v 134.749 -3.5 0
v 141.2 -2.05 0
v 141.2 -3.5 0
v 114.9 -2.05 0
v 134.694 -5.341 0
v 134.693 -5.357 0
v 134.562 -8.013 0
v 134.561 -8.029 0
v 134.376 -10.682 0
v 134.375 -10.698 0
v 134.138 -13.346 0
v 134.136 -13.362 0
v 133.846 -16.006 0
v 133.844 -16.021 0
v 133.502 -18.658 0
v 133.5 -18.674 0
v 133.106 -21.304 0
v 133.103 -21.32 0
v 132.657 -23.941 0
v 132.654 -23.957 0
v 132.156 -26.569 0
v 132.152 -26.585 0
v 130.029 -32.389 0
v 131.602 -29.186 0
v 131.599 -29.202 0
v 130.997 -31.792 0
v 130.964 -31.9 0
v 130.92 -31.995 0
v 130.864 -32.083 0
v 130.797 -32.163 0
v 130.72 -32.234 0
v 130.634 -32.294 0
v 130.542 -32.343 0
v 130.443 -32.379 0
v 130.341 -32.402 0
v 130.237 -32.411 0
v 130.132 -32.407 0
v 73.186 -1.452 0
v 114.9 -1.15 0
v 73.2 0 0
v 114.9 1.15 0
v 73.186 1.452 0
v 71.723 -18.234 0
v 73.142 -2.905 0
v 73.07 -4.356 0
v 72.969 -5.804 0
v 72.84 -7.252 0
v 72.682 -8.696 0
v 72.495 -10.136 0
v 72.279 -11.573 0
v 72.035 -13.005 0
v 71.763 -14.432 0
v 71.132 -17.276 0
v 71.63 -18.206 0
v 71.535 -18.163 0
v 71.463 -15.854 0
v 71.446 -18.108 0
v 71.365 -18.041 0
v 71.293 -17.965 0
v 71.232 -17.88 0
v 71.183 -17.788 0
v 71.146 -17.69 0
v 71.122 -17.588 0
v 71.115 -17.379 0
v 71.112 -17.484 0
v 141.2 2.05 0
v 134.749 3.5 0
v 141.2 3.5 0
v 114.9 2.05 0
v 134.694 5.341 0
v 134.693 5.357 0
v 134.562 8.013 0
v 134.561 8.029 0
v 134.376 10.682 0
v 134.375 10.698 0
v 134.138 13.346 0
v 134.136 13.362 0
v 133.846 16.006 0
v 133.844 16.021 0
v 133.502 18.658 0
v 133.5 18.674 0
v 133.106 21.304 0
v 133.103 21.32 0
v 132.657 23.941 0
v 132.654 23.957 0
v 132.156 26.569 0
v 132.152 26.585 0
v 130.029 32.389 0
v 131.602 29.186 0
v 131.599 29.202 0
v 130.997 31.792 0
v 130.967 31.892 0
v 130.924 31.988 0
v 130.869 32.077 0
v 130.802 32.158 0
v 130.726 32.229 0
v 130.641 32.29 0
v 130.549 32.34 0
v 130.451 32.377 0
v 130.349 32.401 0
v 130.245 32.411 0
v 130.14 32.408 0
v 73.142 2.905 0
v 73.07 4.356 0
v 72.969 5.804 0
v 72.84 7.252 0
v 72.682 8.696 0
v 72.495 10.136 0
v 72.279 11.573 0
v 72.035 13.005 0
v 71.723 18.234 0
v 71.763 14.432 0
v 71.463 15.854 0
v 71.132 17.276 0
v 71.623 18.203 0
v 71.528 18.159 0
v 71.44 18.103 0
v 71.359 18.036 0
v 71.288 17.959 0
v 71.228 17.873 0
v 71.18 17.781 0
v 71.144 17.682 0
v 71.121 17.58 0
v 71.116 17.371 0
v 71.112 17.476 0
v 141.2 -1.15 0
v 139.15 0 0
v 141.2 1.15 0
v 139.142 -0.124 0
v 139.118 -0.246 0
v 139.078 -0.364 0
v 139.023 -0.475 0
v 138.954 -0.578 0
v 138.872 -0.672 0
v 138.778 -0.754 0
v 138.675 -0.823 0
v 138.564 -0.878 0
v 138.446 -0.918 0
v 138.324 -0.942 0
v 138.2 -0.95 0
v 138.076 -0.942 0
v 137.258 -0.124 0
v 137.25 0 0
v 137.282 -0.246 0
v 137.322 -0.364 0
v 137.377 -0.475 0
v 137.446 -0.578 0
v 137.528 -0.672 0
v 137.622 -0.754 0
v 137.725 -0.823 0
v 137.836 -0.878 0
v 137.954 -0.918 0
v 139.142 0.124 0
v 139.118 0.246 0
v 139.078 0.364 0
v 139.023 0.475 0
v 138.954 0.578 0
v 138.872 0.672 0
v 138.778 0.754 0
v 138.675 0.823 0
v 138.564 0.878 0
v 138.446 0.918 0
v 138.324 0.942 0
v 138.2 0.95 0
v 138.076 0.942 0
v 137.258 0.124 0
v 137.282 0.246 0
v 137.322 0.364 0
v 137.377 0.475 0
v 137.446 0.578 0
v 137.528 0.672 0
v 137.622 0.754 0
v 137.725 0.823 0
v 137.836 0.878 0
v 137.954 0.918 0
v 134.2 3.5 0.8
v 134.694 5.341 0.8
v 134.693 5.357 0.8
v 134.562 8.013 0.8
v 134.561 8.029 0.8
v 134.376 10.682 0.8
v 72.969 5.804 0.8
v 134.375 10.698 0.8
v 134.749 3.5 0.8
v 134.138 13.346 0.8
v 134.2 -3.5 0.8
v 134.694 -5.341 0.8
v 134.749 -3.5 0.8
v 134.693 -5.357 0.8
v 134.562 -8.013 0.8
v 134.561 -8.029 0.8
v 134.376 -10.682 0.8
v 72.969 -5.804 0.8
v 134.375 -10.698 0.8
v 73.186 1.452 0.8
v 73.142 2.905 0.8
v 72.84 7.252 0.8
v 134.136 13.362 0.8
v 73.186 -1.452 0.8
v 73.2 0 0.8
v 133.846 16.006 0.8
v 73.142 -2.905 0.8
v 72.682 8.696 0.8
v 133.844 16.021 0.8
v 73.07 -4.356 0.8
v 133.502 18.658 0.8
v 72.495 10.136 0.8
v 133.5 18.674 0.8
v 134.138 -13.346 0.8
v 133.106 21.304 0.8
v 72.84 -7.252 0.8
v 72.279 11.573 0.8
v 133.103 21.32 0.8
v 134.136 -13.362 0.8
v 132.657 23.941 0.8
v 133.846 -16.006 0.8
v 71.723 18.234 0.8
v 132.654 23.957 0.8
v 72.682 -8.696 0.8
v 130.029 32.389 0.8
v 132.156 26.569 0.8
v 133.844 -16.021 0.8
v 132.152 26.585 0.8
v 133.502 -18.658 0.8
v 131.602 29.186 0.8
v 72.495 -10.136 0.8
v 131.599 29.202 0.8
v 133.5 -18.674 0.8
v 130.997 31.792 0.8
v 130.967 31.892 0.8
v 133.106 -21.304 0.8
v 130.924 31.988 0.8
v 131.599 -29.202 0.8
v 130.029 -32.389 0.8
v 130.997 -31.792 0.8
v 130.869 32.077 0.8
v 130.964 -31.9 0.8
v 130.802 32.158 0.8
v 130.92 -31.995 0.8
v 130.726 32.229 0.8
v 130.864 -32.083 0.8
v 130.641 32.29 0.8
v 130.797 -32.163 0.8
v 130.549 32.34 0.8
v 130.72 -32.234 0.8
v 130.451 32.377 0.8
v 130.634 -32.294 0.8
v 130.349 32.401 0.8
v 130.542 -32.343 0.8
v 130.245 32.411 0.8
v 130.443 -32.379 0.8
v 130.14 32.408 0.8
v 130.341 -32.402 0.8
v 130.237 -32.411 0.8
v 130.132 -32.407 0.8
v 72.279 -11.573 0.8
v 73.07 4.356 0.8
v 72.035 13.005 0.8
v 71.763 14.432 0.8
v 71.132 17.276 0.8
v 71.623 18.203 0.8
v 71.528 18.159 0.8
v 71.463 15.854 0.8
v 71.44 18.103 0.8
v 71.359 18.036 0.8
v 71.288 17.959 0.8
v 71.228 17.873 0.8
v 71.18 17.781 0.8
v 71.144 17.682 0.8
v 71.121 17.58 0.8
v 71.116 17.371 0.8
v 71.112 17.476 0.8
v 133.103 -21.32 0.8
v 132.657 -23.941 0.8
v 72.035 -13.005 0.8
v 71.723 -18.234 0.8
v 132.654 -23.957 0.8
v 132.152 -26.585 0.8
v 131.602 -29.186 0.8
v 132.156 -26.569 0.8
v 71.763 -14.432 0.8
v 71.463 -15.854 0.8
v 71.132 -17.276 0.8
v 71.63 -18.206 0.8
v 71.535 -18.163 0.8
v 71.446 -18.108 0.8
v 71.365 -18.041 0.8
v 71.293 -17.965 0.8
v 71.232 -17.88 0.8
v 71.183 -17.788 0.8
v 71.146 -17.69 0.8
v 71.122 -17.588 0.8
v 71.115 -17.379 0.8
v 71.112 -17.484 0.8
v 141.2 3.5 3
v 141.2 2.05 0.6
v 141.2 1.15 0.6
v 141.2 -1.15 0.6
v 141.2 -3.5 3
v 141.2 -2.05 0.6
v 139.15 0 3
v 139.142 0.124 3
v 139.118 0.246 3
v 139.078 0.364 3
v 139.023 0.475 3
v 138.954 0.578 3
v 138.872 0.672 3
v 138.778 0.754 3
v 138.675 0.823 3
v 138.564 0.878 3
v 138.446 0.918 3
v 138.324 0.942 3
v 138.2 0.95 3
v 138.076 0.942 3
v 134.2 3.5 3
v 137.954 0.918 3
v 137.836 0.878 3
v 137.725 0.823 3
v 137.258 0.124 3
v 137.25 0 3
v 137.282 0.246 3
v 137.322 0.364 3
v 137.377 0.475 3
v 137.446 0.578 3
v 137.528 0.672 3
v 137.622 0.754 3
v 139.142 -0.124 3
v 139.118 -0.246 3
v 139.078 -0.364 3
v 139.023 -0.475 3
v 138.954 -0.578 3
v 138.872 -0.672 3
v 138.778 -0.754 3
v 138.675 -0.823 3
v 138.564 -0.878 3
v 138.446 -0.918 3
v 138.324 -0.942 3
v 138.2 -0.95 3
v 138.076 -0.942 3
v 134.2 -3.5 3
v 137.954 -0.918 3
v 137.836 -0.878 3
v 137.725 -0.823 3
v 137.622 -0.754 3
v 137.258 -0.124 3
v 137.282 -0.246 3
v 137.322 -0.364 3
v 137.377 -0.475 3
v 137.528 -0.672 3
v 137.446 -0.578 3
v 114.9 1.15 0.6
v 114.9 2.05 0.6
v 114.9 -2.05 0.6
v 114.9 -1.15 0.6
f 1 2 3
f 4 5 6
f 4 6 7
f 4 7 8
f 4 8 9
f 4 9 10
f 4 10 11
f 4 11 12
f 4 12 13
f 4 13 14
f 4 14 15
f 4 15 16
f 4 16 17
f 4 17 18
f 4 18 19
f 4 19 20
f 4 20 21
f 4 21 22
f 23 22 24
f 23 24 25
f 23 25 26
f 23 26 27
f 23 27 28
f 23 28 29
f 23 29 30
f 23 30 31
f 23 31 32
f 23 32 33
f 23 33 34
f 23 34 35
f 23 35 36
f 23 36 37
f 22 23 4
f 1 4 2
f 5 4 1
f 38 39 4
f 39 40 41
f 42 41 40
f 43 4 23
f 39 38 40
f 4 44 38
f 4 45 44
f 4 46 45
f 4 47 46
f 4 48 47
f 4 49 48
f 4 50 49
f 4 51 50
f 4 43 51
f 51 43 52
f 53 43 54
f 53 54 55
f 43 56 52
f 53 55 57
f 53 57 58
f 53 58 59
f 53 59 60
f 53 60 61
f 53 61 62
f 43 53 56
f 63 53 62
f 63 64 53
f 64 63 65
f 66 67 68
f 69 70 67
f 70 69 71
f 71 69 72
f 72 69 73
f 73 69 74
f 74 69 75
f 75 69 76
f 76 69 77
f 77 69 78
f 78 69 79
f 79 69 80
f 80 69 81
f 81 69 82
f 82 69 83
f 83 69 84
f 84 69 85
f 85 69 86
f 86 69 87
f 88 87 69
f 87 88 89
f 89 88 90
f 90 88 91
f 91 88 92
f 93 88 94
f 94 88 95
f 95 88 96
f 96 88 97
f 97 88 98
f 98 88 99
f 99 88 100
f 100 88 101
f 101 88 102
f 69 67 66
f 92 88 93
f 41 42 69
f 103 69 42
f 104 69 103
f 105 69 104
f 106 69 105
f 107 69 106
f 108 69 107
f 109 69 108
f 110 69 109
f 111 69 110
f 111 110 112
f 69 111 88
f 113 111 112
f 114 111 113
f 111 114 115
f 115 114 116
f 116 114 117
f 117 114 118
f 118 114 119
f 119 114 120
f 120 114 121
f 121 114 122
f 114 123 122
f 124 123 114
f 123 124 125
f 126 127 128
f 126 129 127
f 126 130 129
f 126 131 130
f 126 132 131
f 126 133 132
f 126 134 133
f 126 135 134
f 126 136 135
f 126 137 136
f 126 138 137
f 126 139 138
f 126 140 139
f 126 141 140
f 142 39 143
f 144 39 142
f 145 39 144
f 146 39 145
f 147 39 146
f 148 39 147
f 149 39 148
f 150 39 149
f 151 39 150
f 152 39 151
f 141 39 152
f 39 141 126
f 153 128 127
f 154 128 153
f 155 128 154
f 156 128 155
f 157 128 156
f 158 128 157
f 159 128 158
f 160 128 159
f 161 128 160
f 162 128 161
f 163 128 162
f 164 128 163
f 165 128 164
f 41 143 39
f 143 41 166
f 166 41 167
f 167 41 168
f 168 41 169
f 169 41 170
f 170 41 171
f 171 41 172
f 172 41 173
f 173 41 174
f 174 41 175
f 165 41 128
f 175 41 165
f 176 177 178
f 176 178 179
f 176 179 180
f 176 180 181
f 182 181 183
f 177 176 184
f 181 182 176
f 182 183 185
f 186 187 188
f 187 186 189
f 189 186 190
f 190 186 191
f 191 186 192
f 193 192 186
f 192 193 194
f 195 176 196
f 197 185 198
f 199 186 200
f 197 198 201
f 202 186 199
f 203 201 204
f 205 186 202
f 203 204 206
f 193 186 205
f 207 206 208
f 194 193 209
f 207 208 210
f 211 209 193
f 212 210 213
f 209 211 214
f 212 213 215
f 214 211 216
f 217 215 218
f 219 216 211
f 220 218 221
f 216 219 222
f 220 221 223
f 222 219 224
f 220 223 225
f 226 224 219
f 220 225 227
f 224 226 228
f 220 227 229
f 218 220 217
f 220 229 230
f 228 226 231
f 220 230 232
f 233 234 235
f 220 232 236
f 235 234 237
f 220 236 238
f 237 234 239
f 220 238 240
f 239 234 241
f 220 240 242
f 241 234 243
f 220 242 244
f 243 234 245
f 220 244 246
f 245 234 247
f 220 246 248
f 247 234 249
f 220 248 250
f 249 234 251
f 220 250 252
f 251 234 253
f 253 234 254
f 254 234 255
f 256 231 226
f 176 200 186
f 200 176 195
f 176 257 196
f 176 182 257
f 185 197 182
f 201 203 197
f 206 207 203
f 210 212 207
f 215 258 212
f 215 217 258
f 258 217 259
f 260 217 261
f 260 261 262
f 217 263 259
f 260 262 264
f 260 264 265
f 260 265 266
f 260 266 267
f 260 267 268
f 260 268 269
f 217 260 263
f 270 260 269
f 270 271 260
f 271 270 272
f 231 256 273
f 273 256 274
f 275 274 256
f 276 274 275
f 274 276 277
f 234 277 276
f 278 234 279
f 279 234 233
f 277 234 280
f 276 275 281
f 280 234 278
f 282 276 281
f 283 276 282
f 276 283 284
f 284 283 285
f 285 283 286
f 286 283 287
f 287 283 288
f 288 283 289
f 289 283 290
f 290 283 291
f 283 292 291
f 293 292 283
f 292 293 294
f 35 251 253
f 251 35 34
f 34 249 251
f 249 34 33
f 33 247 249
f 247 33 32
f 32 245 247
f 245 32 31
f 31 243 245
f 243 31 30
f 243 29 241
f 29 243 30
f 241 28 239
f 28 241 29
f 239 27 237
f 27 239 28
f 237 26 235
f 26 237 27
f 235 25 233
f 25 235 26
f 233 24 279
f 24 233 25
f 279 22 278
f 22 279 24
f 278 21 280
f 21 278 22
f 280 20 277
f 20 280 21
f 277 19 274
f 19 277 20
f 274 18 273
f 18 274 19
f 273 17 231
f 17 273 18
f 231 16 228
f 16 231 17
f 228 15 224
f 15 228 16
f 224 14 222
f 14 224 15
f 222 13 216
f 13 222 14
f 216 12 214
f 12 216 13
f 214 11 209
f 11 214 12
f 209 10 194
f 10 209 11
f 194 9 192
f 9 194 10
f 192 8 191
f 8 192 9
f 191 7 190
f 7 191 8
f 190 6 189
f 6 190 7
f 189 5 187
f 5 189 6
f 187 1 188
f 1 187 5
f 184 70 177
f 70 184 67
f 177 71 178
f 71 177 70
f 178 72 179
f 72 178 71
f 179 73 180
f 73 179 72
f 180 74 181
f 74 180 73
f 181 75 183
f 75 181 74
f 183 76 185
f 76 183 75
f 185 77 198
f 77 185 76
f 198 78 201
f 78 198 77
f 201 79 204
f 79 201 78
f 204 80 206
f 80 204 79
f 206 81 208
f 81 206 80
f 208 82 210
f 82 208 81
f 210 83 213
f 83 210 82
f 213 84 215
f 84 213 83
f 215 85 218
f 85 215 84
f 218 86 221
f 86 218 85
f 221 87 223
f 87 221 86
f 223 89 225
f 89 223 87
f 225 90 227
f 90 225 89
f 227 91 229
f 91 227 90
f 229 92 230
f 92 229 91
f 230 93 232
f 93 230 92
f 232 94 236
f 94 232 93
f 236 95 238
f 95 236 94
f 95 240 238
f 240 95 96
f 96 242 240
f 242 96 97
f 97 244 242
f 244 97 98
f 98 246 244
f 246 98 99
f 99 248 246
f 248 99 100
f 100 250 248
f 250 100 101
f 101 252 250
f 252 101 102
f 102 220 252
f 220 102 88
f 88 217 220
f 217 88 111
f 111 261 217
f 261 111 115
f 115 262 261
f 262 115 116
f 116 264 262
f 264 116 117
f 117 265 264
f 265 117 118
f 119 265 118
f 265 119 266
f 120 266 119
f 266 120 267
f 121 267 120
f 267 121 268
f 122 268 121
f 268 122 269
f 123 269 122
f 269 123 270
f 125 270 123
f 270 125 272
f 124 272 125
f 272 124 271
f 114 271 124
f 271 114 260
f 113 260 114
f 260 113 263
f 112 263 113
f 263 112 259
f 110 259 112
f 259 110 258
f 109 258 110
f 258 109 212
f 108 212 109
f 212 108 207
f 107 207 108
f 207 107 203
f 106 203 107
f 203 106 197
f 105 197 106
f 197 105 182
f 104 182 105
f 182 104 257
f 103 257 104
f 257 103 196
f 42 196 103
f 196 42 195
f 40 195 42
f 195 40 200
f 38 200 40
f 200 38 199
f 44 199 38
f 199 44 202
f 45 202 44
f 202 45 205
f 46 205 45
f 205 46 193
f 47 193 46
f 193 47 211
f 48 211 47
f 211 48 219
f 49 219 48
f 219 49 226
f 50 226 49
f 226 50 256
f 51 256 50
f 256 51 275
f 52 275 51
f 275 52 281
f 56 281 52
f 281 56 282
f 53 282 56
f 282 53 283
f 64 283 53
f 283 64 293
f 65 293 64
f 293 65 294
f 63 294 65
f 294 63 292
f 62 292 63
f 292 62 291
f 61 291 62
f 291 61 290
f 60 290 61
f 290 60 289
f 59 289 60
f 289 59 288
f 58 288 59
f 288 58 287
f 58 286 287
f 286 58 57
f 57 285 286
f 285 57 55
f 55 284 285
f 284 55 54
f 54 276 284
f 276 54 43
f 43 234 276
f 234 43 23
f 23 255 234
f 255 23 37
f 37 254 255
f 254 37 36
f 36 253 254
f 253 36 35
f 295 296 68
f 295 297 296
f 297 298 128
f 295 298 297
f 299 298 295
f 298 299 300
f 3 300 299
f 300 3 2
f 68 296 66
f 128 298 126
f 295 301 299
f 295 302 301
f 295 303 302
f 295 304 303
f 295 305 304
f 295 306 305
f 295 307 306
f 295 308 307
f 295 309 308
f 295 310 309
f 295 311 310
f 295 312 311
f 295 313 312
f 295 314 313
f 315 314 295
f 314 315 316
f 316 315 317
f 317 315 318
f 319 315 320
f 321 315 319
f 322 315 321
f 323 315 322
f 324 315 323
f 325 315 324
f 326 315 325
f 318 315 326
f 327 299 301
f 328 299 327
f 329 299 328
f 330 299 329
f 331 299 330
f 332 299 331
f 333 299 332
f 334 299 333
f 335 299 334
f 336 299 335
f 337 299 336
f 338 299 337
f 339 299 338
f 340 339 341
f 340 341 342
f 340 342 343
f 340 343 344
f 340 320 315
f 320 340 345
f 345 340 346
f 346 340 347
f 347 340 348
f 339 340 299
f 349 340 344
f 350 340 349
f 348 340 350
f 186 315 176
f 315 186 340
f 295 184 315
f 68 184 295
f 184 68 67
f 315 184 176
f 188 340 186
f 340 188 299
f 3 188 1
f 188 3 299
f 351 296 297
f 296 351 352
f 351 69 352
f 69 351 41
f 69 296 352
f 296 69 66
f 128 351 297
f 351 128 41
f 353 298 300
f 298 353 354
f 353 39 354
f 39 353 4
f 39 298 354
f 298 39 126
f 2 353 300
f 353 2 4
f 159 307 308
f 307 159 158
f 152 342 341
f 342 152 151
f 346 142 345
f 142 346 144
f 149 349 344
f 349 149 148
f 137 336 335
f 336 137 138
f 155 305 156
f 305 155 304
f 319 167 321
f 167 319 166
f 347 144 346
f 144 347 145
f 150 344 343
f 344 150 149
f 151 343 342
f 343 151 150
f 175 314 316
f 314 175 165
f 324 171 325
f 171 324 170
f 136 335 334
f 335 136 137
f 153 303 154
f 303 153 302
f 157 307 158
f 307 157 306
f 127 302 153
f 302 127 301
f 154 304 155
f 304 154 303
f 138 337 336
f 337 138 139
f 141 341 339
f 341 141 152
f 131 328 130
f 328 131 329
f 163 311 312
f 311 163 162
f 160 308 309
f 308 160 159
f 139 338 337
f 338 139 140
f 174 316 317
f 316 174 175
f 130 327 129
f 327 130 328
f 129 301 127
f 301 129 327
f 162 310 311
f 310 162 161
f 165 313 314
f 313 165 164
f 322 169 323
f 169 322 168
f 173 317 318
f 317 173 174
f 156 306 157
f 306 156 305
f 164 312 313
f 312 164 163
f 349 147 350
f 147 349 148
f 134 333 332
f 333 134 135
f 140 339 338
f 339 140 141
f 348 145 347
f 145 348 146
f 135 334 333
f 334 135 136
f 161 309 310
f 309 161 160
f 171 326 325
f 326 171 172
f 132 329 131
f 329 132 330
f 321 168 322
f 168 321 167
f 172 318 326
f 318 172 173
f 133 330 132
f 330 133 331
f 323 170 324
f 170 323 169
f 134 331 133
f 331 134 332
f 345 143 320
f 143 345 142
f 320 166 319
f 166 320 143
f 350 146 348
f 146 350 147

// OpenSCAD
// Gen-DG — bobbin LID (top flange + locating tab). Print x12, flange face DOWN on the bed.
// CA-glue onto the hub top BEFORE winding. Tab = lap joint into the stator tab pocket; 1.75 mm filament
// pin through pin hole + stator ledge, trim flush. Lead slots carry both leads flush.
include <parameters.scad>;
$fn = 48;
module sector_2d(r_in, r_out, ang) {
    polygon([
        for (a = [-ang/2 : ang/24 : ang/2]) [r_in*cos(a), r_in*sin(a)],
        for (a = [ang/2 : -ang/24 : -ang/2]) [r_out*cos(a), r_out*sin(a)]
    ]);
}
module footprint_2d() { offset(r=wall) sector_2d(coil_id_r, coil_od_r, span_deg); }
module hub_2d()       { offset(delta=-coil_core_inset) sector_2d(coil_id_r, coil_od_r, span_deg); }

difference() {
    union() {
        linear_extrude(flange_t) footprint_2d();
        translate([coil_od_r + 0.2, -tab_w/2, 0]) cube([tab_len, tab_w, tab_h]);
    }
    translate([coil_mount_r, 0, -0.1]) cylinder(d=pin_d, h=tab_h + 1);
    for (y = [lead_y, -lead_y])
        translate([coil_od_r - coil_core_inset - 0.5, y - lead_slot_w/2, -0.1])
            cube([coil_core_inset + tab_len + 2, lead_slot_w, lead_groove_d + 0.1]);
}
